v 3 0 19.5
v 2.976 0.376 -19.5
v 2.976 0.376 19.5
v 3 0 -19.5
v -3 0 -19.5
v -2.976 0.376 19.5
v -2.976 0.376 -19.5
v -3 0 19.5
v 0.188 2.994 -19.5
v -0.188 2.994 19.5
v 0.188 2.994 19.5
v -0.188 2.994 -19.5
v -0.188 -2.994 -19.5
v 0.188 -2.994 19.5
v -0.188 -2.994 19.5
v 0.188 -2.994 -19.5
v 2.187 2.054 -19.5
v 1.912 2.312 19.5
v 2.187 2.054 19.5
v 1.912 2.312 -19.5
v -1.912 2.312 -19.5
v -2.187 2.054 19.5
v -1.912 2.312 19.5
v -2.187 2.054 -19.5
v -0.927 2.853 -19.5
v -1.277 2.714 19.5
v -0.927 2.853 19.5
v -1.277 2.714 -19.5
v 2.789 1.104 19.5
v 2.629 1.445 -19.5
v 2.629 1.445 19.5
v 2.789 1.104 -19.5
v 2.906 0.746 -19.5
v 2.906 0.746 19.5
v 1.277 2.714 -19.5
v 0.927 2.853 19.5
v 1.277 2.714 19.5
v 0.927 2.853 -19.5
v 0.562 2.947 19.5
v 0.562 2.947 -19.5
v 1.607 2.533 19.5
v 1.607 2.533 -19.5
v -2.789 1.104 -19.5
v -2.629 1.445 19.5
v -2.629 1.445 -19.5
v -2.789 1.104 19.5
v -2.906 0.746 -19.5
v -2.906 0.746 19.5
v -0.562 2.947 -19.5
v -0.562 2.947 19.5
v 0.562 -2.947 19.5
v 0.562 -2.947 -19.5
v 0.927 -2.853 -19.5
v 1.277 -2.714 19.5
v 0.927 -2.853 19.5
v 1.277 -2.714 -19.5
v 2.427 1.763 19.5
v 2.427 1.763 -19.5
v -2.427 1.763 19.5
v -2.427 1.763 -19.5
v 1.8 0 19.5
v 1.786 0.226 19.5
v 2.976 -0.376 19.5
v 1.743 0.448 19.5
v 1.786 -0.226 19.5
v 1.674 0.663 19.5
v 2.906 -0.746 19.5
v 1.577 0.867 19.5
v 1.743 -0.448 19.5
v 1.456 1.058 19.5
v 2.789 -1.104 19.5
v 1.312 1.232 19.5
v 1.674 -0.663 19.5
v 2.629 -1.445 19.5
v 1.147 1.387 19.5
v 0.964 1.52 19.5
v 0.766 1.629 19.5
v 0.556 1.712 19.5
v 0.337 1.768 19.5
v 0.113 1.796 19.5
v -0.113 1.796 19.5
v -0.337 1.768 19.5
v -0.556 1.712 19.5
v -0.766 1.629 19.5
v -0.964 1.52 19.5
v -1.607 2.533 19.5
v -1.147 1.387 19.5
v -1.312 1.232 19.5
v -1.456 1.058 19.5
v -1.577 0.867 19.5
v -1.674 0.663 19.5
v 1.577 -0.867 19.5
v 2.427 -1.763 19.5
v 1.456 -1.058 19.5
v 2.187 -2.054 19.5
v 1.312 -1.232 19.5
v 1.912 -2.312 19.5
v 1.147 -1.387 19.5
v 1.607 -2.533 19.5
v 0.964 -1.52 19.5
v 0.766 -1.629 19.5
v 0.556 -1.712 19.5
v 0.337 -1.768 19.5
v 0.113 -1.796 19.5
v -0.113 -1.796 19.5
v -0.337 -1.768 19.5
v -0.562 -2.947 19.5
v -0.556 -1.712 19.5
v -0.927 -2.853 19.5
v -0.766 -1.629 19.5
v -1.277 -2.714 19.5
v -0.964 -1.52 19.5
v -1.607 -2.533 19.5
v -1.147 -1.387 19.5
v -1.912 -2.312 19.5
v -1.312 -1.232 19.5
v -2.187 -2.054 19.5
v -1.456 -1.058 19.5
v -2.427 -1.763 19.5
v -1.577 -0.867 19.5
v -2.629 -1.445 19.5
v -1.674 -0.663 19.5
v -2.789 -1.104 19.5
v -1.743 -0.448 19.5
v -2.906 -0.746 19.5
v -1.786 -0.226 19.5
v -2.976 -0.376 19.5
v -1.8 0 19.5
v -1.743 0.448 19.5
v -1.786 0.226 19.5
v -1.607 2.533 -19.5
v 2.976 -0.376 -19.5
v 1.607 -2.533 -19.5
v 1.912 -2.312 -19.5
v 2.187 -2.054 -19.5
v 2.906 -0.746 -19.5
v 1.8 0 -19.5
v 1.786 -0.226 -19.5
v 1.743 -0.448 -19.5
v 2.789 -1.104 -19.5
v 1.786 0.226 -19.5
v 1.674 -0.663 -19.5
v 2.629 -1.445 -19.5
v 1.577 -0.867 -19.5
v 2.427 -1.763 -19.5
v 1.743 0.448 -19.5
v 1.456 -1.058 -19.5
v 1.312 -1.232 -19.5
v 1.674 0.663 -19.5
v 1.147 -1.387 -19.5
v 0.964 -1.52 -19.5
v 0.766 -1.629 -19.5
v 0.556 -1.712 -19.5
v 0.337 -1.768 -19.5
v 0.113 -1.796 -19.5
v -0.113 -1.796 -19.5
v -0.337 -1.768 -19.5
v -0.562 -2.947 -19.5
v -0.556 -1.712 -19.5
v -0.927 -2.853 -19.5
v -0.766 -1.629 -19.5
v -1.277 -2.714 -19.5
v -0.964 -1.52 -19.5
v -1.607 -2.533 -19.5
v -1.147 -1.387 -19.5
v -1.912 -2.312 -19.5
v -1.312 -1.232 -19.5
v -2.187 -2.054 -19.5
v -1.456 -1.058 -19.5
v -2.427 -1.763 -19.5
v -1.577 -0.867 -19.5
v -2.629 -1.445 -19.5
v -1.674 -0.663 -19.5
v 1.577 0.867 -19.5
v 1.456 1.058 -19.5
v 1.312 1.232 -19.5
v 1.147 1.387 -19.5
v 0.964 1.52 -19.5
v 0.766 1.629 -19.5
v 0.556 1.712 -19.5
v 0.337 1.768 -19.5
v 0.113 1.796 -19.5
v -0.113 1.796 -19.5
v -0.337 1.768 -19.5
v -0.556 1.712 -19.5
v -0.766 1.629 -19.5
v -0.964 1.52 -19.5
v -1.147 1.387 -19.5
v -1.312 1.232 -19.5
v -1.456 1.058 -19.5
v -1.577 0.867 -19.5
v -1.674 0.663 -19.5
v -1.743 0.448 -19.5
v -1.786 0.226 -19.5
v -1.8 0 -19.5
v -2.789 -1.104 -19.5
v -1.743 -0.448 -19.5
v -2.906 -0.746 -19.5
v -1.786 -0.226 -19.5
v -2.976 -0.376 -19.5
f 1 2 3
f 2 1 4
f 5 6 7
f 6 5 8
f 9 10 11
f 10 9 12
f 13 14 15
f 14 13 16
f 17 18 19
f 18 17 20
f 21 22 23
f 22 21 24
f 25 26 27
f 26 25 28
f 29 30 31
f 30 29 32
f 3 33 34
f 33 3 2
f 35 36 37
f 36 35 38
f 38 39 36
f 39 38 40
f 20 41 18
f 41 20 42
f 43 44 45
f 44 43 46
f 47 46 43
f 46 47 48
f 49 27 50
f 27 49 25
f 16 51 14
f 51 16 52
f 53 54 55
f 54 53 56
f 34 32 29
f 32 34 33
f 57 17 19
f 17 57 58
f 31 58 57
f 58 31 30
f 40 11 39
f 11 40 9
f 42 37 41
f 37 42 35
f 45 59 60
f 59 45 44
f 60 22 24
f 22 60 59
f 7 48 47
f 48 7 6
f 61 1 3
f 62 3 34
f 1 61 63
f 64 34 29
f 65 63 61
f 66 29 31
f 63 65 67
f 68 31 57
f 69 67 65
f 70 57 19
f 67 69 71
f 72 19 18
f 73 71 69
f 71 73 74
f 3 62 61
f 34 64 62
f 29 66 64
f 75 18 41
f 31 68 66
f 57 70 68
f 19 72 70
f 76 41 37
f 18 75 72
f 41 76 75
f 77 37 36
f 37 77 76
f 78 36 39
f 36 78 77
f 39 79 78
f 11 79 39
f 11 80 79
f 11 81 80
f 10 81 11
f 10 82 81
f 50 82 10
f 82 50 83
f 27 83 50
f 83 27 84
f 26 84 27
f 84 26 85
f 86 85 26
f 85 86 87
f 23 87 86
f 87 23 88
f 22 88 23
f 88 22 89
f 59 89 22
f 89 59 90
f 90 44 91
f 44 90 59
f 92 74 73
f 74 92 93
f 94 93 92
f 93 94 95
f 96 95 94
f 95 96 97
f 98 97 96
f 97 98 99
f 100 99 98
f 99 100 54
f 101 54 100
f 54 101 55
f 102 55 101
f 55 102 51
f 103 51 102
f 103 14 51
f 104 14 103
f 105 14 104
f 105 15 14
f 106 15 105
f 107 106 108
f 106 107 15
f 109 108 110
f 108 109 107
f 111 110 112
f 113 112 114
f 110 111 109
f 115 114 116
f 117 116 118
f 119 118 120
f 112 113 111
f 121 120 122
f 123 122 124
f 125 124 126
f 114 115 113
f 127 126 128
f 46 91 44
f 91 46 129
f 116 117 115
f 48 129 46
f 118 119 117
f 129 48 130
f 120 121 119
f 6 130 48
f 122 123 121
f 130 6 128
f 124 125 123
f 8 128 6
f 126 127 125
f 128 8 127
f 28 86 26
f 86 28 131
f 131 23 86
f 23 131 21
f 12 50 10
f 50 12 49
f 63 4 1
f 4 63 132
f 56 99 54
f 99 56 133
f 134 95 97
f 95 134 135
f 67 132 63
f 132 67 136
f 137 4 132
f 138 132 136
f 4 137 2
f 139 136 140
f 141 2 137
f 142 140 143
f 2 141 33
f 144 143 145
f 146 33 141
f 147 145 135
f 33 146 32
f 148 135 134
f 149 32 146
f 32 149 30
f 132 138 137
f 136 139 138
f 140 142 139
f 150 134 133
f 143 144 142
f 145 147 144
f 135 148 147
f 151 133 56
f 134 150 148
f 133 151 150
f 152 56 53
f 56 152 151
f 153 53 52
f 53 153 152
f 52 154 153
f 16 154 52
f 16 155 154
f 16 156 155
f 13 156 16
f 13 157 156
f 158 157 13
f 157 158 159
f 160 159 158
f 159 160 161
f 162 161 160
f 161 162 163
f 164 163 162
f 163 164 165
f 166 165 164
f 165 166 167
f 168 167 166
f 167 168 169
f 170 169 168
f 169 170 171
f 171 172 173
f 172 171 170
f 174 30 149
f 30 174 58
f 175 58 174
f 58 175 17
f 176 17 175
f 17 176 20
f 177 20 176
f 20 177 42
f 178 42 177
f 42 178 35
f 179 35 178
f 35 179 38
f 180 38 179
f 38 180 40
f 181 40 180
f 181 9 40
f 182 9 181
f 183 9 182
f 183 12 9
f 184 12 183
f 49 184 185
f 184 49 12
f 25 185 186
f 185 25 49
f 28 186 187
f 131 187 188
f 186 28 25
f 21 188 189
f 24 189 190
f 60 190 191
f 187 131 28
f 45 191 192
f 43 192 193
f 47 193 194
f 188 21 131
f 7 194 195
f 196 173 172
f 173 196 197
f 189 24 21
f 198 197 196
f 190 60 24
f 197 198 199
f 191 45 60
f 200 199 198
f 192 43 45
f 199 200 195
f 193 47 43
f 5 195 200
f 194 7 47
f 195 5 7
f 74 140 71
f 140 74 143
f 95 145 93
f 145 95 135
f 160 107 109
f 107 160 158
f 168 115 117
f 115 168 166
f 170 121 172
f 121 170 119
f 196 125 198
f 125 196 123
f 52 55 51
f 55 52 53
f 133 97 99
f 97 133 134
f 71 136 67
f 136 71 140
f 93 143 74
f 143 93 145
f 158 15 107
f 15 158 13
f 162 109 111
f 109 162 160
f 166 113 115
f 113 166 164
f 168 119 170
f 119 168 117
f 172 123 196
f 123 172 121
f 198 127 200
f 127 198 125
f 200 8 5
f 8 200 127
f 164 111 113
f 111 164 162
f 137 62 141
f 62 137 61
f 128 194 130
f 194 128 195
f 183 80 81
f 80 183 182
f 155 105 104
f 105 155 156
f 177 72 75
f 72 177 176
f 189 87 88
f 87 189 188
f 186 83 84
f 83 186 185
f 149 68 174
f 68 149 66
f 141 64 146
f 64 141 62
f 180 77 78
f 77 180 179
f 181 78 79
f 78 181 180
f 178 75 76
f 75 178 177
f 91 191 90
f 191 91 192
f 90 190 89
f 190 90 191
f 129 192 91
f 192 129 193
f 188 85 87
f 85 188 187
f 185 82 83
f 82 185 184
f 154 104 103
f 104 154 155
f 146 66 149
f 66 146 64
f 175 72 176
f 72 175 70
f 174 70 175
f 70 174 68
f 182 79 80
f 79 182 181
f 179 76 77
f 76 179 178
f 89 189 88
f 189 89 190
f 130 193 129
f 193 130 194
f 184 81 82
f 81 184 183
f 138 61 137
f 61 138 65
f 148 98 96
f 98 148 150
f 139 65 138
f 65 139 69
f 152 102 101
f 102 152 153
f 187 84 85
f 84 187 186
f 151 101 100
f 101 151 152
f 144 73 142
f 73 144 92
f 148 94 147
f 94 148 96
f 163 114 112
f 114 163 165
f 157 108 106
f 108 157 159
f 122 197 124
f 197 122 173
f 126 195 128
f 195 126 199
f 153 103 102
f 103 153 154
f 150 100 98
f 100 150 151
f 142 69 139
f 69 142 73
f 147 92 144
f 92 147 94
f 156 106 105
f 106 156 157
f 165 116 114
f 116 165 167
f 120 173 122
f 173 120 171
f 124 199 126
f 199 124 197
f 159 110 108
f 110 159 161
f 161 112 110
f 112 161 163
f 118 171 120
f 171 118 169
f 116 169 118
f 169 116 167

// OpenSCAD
$fn = 50;


difference() {
	union() {
		translate(v = [0, 0, -19.5000000000]) {
			cylinder(h = 39, r = 3.0000000000);
		}
	}
	union() {
		translate(v = [0, 0, -100.0000000000]) {
			cylinder(h = 200, r = 1.8000000000);
		}
	}
}
